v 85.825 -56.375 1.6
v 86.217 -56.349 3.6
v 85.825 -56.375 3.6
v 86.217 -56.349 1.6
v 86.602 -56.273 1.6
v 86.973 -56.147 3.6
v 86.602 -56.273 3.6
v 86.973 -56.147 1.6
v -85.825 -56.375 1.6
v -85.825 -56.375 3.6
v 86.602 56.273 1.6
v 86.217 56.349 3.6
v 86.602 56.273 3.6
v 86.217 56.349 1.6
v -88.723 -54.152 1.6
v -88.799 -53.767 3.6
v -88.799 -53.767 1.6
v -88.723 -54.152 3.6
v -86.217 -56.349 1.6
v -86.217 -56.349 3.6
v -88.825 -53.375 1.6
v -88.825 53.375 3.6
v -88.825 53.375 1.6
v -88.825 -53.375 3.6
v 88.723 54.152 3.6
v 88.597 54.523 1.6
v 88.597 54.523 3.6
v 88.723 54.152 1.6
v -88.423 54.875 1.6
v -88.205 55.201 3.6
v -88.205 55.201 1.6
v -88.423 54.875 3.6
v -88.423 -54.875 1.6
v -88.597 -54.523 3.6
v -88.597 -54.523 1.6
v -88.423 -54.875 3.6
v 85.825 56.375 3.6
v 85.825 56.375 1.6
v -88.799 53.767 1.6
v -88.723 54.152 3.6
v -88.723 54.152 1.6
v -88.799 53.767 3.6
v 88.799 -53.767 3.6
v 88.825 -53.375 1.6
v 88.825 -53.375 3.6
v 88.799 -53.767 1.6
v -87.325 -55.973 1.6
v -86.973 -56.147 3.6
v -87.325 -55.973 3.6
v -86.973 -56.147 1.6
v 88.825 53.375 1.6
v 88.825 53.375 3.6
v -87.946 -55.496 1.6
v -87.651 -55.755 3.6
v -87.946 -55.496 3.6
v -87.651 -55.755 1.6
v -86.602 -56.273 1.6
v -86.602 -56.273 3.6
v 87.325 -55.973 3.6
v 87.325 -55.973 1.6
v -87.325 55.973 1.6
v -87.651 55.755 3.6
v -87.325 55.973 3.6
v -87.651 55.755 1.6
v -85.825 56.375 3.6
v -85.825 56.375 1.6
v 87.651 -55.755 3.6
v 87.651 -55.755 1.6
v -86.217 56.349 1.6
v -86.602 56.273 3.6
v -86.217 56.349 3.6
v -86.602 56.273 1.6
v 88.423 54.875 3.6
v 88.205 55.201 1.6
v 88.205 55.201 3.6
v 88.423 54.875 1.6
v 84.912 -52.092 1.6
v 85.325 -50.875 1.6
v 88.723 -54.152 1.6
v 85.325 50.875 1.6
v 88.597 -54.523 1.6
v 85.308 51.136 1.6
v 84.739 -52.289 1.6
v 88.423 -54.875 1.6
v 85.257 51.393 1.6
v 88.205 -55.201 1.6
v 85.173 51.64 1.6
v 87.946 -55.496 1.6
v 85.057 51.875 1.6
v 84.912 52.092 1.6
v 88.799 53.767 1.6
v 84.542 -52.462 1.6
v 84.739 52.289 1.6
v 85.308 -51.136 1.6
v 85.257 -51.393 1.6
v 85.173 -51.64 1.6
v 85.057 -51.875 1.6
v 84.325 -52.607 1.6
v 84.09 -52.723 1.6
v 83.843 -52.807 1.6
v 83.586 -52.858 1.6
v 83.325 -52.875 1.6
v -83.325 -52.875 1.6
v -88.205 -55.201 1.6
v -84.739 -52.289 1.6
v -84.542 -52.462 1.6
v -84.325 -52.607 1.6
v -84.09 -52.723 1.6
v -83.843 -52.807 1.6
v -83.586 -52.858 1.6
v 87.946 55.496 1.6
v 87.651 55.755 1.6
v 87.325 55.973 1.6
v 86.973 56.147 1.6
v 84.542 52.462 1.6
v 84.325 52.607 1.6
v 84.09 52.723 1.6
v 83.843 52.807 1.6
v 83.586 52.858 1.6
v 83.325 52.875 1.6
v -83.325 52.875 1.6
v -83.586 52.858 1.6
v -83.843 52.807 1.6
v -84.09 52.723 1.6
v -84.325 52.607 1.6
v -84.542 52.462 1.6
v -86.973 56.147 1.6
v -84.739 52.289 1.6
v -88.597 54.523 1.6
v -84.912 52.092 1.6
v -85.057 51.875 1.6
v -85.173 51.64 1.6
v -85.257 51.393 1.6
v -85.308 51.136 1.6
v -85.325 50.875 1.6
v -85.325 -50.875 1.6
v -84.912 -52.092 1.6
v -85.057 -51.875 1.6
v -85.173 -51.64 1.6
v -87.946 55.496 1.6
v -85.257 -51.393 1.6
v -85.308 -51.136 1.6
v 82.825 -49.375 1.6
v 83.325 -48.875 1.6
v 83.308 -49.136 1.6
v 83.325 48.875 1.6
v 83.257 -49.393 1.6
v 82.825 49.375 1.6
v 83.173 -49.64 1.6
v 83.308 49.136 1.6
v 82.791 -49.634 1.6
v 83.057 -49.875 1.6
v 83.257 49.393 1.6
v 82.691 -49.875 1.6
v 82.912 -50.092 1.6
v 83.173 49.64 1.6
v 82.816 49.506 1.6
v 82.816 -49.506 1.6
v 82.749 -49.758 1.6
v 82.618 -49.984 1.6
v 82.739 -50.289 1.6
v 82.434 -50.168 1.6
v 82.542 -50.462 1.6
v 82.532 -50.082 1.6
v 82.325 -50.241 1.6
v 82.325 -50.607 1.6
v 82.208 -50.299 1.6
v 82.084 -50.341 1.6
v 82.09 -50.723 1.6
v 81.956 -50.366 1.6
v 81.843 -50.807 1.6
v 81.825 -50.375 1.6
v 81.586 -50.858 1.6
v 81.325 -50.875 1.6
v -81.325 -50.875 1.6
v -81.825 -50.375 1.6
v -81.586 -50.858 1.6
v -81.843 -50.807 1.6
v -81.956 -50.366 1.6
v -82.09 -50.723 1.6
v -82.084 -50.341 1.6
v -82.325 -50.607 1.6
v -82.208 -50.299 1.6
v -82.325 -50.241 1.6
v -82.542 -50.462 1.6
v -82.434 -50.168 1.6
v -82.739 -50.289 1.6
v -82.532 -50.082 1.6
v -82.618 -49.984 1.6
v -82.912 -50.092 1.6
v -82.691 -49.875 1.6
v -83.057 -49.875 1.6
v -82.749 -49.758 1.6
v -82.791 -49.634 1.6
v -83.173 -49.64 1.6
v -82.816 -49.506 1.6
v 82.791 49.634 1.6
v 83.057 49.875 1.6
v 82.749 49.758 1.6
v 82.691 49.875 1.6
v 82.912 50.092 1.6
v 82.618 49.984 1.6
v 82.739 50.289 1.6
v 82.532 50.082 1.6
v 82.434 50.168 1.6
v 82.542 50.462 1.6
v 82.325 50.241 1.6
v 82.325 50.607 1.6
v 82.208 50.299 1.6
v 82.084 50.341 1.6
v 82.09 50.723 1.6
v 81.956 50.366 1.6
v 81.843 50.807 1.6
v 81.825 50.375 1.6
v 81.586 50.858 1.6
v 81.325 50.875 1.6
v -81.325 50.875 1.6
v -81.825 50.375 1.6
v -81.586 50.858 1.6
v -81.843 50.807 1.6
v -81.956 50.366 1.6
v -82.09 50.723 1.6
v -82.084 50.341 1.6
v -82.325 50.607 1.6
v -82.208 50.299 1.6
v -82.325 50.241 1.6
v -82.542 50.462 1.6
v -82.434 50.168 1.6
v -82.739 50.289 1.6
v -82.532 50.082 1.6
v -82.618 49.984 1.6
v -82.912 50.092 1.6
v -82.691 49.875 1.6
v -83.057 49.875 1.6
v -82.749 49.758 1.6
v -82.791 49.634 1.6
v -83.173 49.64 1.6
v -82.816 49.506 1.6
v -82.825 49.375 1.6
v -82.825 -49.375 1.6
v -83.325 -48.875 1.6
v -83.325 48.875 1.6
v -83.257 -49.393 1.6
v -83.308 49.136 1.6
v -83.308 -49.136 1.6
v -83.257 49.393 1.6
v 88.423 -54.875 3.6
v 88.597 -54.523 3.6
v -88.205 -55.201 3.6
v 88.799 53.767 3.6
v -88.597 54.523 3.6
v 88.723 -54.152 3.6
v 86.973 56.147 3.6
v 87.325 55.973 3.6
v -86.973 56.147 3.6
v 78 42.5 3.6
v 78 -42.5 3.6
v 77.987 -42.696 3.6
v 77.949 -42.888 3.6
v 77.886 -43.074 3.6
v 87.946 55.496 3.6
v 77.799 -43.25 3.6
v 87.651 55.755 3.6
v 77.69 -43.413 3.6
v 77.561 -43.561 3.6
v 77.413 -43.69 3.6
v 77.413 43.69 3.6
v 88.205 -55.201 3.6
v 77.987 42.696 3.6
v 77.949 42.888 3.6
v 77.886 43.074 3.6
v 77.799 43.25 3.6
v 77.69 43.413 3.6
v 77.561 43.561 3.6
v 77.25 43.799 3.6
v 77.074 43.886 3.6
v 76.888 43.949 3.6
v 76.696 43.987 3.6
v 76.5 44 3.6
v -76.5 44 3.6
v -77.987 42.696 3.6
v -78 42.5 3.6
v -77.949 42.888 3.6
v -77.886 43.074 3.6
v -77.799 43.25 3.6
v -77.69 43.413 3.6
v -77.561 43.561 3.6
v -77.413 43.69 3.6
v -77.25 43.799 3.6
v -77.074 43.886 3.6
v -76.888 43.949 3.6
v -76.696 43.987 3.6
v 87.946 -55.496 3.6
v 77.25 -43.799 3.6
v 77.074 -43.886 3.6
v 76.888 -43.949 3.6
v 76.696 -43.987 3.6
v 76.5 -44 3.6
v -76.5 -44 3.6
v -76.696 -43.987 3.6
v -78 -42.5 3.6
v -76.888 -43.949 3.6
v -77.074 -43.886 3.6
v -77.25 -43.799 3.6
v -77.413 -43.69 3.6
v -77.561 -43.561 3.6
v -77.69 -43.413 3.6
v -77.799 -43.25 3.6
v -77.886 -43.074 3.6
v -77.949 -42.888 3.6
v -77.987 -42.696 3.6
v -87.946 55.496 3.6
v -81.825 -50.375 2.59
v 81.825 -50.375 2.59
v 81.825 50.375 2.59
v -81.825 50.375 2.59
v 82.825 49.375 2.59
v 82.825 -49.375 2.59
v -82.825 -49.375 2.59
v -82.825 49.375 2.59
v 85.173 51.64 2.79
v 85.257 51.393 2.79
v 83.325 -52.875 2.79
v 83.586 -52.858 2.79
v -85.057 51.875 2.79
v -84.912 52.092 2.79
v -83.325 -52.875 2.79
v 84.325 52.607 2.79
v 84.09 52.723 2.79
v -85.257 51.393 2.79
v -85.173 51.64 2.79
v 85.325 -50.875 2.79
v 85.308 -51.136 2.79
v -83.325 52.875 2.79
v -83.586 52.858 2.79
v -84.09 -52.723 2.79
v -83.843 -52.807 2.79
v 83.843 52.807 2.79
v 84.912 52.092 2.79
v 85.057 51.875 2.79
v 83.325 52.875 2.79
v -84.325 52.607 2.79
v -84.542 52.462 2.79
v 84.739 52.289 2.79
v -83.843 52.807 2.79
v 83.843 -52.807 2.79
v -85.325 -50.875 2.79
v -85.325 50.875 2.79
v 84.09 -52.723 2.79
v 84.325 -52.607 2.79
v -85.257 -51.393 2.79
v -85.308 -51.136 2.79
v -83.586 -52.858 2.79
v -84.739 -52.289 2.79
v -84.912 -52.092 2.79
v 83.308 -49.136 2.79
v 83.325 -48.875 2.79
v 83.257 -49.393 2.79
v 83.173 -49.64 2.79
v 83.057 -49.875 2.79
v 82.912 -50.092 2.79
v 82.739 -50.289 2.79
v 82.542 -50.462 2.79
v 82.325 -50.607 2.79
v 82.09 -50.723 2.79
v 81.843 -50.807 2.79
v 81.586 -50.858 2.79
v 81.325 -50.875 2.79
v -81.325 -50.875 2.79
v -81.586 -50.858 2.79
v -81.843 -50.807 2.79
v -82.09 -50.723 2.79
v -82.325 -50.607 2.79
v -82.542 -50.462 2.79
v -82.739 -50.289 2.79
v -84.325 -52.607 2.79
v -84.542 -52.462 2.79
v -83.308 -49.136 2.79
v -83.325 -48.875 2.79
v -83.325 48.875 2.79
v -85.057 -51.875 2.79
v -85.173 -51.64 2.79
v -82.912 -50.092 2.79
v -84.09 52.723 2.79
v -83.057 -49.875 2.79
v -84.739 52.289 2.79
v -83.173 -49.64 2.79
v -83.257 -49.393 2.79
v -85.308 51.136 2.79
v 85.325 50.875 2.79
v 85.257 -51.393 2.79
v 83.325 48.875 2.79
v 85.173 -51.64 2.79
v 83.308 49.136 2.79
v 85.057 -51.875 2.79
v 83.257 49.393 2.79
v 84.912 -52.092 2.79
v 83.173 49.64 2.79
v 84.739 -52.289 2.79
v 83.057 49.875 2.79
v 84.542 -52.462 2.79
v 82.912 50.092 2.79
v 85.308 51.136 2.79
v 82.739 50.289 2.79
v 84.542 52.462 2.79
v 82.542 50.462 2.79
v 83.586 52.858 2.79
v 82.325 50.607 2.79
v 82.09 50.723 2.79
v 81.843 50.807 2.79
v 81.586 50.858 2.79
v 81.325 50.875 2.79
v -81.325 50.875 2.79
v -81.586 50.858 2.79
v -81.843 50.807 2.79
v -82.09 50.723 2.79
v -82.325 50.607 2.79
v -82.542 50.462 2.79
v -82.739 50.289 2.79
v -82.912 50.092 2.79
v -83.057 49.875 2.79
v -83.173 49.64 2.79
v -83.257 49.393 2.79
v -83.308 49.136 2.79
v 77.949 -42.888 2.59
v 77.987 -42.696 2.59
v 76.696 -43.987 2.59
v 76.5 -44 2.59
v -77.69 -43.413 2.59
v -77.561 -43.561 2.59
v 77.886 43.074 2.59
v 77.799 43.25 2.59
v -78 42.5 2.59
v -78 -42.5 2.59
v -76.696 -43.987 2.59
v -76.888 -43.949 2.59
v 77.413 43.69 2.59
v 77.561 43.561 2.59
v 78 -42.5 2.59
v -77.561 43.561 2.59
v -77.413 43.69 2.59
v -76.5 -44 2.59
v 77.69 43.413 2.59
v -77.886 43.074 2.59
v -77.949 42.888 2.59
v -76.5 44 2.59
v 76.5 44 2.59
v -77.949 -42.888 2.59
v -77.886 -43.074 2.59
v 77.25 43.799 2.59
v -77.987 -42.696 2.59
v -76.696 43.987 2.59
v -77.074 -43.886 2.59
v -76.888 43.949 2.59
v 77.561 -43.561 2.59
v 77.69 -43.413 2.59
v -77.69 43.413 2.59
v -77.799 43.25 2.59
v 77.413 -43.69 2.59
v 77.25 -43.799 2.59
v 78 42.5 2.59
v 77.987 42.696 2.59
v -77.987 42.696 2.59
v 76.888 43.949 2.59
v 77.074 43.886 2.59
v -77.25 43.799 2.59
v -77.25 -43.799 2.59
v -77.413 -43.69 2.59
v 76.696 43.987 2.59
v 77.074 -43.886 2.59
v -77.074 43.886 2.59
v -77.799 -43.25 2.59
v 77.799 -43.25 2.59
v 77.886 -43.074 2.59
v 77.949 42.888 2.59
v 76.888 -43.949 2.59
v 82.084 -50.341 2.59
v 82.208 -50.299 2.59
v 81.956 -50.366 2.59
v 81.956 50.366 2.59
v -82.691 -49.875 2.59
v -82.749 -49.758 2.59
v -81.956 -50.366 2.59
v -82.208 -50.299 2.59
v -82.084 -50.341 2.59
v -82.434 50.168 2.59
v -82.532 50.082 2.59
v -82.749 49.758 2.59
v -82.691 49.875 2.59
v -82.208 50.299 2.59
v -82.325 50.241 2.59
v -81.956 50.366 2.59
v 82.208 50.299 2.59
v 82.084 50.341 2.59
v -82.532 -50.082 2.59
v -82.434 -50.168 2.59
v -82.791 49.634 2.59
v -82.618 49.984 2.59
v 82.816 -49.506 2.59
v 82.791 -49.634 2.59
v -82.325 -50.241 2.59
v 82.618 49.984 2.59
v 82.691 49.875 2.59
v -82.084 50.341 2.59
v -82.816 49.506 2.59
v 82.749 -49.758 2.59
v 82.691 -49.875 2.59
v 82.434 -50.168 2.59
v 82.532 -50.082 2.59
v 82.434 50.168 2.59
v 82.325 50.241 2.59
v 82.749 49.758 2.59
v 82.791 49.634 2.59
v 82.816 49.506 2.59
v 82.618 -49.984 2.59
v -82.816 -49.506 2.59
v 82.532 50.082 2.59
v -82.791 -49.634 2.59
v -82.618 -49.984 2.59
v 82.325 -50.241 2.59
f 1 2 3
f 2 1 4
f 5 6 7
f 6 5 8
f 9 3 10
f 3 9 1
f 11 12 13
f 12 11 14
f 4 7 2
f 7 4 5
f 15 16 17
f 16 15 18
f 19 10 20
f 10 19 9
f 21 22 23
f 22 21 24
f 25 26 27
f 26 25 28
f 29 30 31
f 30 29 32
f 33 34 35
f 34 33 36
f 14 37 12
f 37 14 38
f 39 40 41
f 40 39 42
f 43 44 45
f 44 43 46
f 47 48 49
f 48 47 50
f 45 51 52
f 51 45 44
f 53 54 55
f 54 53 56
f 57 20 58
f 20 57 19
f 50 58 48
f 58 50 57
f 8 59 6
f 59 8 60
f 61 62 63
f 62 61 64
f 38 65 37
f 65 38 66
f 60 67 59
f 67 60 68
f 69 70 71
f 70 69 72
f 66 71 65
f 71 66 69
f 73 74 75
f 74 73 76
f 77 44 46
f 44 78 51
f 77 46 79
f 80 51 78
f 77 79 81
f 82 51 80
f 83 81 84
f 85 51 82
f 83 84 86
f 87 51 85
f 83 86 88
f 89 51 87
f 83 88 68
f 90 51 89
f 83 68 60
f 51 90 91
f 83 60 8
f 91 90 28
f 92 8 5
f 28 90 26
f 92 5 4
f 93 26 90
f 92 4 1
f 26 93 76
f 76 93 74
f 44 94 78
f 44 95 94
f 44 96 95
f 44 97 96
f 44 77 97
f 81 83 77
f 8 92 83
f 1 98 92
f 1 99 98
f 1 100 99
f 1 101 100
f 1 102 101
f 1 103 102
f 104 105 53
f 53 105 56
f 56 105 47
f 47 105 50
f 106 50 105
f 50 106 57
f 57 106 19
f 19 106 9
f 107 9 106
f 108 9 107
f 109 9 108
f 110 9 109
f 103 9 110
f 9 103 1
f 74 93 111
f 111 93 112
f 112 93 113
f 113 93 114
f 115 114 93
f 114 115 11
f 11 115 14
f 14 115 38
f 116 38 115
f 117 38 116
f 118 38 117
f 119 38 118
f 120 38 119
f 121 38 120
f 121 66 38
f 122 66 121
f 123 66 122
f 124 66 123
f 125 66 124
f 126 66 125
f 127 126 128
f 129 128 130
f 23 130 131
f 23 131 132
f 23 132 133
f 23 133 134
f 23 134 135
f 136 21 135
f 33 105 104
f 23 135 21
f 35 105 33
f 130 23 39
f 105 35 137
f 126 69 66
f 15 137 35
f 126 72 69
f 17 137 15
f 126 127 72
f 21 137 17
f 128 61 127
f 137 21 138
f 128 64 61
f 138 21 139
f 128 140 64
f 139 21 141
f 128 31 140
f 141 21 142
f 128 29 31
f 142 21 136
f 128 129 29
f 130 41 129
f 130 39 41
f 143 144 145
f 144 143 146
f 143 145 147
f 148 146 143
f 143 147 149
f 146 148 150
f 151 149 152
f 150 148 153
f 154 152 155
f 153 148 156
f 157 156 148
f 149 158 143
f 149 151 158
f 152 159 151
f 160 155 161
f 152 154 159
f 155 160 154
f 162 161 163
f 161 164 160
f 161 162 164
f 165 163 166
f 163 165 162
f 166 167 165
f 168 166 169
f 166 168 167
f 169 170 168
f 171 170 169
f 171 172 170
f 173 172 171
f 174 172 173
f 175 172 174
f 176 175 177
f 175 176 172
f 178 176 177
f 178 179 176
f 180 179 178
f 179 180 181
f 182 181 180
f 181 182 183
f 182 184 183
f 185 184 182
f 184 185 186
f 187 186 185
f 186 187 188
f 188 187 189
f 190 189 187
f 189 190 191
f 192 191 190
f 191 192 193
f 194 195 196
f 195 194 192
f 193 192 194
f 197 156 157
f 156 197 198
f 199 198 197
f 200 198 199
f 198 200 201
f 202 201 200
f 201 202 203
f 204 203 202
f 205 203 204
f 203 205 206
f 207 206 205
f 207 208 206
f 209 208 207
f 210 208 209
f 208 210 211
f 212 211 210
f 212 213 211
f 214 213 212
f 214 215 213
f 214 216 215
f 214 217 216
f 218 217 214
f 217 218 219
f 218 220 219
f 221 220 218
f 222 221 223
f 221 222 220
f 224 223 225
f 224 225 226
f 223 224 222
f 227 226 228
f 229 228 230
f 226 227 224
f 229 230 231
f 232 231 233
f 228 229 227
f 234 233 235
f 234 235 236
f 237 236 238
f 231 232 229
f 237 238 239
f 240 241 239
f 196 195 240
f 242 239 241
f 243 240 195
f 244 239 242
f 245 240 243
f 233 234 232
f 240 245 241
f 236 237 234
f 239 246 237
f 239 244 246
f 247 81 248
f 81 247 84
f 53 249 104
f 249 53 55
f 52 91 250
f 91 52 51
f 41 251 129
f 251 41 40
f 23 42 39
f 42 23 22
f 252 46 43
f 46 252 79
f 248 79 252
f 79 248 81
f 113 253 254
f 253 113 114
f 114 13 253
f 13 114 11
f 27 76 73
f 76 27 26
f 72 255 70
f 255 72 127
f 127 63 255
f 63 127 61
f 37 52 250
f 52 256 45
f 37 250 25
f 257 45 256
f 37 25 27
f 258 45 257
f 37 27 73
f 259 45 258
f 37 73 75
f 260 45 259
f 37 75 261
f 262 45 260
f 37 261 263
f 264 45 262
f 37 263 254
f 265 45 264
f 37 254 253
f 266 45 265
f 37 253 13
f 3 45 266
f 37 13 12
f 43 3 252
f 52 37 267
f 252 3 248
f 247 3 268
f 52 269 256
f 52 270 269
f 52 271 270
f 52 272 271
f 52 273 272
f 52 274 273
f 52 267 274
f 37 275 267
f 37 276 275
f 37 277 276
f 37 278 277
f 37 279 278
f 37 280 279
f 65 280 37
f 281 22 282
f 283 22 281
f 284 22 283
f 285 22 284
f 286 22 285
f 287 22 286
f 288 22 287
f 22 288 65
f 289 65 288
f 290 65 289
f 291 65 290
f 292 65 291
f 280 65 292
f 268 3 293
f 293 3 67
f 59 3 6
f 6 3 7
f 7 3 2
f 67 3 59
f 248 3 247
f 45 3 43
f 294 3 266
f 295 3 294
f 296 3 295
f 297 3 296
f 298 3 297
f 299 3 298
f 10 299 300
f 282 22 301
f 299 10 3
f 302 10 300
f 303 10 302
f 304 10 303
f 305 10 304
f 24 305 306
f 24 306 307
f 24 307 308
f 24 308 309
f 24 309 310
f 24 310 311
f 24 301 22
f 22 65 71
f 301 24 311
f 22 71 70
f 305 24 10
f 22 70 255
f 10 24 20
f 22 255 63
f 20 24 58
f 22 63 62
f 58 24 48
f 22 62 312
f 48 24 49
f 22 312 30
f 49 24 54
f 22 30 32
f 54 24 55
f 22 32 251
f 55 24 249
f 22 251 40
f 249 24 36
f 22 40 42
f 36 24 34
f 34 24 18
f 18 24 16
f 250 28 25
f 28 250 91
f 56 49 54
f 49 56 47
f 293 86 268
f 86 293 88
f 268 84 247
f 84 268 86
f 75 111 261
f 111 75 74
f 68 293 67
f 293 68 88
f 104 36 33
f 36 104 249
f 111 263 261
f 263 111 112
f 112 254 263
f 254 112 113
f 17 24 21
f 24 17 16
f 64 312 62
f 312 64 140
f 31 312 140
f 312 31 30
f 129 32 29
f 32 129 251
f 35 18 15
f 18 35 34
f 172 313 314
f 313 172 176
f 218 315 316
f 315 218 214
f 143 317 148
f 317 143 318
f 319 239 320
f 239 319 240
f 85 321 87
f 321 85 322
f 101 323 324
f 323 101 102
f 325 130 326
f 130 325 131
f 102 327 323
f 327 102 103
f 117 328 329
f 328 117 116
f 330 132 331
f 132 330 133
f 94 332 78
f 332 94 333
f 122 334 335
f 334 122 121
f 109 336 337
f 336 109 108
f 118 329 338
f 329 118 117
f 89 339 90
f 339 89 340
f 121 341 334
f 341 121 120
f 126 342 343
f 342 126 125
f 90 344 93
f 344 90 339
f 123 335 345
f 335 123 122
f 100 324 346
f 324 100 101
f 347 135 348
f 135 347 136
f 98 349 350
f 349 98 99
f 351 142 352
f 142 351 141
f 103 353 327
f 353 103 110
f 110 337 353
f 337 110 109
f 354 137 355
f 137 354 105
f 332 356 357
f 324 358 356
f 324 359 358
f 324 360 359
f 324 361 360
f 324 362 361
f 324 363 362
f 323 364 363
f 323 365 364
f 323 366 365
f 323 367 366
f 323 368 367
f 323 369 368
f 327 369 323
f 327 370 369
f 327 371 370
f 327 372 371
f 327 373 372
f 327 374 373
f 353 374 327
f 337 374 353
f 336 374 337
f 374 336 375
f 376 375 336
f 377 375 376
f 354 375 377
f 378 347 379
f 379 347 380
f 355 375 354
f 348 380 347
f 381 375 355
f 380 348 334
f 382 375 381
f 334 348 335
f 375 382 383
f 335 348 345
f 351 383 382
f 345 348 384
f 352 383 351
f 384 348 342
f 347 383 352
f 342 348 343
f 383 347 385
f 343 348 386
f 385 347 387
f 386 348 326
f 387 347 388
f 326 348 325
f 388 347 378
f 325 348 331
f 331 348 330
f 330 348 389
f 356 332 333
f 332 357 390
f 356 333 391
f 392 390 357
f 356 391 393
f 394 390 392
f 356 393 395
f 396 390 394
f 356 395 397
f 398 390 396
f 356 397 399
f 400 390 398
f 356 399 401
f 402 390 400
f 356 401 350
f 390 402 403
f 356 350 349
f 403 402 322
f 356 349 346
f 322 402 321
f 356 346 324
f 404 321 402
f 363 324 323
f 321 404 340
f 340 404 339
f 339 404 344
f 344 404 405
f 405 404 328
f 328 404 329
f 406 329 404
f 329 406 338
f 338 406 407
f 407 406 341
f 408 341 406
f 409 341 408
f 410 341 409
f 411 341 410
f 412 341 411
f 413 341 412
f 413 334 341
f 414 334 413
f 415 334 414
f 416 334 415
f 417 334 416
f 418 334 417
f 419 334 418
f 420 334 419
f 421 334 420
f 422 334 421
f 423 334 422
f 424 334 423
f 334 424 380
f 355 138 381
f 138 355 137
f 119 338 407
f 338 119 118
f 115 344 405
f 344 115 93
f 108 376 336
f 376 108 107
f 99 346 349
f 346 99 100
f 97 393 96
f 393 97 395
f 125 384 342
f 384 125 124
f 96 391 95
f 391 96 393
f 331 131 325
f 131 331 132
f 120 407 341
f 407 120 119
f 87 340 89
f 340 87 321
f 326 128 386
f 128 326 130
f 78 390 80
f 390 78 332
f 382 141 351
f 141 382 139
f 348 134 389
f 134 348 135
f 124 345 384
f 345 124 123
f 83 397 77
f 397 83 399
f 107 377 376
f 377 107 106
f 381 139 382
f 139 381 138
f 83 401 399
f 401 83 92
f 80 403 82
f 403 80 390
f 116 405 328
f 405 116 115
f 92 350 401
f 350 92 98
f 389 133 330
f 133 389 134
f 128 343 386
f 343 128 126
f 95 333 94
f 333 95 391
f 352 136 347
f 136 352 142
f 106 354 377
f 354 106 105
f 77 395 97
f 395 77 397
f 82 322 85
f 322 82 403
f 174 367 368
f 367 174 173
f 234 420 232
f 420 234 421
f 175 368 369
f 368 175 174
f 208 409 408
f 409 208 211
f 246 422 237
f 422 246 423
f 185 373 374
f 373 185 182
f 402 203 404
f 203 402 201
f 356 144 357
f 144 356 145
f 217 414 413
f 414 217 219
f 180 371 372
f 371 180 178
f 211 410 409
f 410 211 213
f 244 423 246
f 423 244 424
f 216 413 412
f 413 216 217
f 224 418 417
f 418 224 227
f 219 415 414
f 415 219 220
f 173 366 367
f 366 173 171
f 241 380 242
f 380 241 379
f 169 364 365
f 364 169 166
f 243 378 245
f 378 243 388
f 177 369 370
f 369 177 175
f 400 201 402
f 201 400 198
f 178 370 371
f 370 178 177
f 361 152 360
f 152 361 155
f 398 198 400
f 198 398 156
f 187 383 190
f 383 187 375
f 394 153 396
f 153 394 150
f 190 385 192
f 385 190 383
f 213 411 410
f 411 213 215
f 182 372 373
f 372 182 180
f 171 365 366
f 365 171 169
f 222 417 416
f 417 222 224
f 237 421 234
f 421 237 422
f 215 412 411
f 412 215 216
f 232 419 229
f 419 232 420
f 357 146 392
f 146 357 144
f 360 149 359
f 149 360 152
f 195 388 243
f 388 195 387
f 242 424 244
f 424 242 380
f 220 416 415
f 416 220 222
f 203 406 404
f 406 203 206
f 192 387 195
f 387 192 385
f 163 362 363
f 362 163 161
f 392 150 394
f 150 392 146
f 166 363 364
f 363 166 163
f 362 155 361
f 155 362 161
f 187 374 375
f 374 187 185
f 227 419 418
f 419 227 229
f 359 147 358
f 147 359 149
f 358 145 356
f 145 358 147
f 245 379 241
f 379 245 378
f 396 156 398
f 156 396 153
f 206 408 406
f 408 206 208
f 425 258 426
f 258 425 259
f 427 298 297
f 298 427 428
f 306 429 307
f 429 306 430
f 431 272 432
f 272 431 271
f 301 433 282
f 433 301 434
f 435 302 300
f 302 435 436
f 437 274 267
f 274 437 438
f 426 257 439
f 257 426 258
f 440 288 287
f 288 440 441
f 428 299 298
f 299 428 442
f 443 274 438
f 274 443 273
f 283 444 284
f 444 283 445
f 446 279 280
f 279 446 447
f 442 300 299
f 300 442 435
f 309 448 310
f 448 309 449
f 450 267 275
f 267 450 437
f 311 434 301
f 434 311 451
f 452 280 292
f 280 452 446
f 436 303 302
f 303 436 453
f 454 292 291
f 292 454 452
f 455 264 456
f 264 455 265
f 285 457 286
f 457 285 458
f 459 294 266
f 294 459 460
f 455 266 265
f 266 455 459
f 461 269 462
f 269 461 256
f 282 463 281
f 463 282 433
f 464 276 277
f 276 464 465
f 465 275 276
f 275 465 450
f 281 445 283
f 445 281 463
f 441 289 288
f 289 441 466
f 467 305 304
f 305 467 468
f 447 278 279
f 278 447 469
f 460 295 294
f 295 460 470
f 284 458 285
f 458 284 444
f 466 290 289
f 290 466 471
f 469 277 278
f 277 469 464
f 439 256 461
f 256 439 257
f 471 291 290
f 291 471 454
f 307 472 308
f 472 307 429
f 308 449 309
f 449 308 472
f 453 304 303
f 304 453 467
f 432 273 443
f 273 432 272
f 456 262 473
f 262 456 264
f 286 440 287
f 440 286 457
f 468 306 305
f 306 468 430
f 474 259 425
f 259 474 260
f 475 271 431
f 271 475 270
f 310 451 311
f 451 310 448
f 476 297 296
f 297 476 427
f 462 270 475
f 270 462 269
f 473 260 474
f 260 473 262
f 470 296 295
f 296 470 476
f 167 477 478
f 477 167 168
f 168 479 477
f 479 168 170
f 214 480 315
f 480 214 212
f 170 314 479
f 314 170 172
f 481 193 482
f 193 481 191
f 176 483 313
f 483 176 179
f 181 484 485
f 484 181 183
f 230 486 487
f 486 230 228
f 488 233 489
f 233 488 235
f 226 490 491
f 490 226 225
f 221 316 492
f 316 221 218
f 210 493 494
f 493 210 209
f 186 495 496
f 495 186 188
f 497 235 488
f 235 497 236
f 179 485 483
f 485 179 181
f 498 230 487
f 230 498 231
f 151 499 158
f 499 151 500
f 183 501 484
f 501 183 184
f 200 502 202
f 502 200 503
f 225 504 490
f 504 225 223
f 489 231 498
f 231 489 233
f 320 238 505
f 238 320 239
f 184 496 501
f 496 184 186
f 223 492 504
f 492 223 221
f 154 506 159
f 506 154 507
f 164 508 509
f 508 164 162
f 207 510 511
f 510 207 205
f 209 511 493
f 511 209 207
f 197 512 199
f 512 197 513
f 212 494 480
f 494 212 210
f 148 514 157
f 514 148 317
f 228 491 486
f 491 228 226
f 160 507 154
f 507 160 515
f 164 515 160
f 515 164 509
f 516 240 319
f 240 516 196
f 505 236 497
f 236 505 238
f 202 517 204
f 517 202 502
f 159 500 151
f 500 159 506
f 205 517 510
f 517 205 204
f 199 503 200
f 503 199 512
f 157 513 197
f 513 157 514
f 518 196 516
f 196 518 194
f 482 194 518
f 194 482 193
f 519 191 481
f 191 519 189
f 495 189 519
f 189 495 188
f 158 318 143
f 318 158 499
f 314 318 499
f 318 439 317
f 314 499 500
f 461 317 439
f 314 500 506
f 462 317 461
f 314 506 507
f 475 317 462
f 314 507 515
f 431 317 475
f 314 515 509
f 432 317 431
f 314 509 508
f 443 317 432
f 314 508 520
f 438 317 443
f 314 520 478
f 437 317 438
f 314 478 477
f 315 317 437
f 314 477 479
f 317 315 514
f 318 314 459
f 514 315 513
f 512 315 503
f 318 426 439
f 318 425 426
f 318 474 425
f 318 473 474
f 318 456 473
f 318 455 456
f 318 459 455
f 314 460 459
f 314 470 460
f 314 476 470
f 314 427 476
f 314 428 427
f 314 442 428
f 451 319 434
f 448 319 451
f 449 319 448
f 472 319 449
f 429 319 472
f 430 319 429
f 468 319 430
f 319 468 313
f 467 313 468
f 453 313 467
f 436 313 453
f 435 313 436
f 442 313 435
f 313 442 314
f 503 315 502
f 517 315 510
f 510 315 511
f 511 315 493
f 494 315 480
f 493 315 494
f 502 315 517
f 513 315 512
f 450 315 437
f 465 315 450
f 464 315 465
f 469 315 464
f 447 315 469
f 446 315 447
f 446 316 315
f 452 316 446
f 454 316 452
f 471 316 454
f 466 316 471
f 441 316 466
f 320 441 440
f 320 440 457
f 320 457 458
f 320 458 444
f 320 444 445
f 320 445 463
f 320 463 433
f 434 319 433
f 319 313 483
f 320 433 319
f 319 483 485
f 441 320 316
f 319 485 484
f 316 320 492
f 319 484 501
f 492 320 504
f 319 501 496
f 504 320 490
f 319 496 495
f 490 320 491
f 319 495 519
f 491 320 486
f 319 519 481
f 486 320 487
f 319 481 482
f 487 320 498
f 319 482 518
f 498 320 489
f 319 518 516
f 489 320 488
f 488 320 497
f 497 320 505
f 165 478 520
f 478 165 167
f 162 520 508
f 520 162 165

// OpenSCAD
// CrowPanel ESP32 7" (DIS08070H) bezel for the field slate (ADR-119 §7).
// Mounts in a cut-out in the aluminium clipboard lid; the panel screws in from behind on
// its 4 x Ø3.2 holes. Dimensions from Elecrow's 7.0inch_HMI_Outline_Dimensions.pdf.
// All values are parameters: measure your lid and panel and adjust.

/* [Panel (from the Elecrow outline)] */
panel_w        = 181;     // board outline width, mm
panel_h        = 104;     // board outline height
hole_dx        = 174;     // mounting hole spacing, x
hole_dy        = 97;      // mounting hole spacing, y
hole_d         = 3.2;     // mounting hole diameter
glass_w        = 164.85;  // cover glass width
glass_h        = 99.95;   // cover glass height
view_w         = 156;     // visible window (active area 154.2 x 85.9 plus margin)
view_h         = 88;

/* [Lid and fit] */
lid_t          = 1.6;     // aluminium lid thickness at the cut-out (measure)
clearance      = 0.4;     // fit clearance around glass and board
lip_w          = 6;       // bezel lip overlapping the lid, each side
face_t         = 2.0;     // bezel face thickness above the lid
gasket_w       = 2.0;     // gasket groove width (cord or foam strip)
gasket_d       = 1.2;     // gasket groove depth
boss_h         = 6;       // standoff height behind the lid (panel stack depth, measure)
boss_d         = 7;
screw_d        = 2.6;     // M3 self-tap pilot into the boss

$fn = 48;

cut_w = glass_w + 2*clearance;   // lid cut-out the bezel neck passes through
cut_h = glass_h + 2*clearance;

module rounded_rect(w, h, r, t) {
    linear_extrude(t) offset(r) offset(-r) square([w, h], center = true);
}

module bezel() {
    difference() {
        union() {
            // face: sits on the outside of the lid
            translate([0, 0, lid_t]) rounded_rect(cut_w + 2*lip_w, cut_h + 2*lip_w, 3, face_t);
            // neck: passes through the lid cut-out
            rounded_rect(cut_w, cut_h, 1.5, lid_t);
        }
        // viewing window
        translate([0, 0, -1]) rounded_rect(view_w, view_h, 1.5, lid_t + face_t + 2);
        // pocket for the cover glass, so the glass sits flush under the face
        translate([0, 0, -0.01]) rounded_rect(glass_w + 2*clearance, glass_h + 2*clearance, 1, lid_t + face_t - 1.0);
        // gasket groove on the underside of the face, around the neck
        translate([0, 0, lid_t - 0.01])
            difference() {
                rounded_rect(cut_w + 2*gasket_w + 1, cut_h + 2*gasket_w + 1, 2, gasket_d);
                translate([0, 0, -0.1]) rounded_rect(cut_w + 1, cut_h + 1, 2, gasket_d + 0.2);
            }
    }
}

// Clamp frame behind the lid: the panel screws to its bosses, and the frame clamps the
// bezel and gasket to the lid with four screws through the lid (or bonded).
module clamp_frame() {
    difference() {
        union() {
            rounded_rect(panel_w + 8, panel_h + 8, 3, 2);
            for (sx = [-1, 1], sy = [-1, 1])
                translate([sx*hole_dx/2, sy*hole_dy/2, 0]) cylinder(d = boss_d, h = boss_h);
        }
        translate([0, 0, -1]) rounded_rect(cut_w, cut_h, 1.5, 4);
        for (sx = [-1, 1], sy = [-1, 1])
            translate([sx*hole_dx/2, sy*hole_dy/2, -1]) cylinder(d = screw_d, h = boss_h + 2);
    }
}

part = "bezel"; // [bezel, clamp_frame, both]
if (part == "bezel" || part == "both") bezel();
if (part == "clamp_frame") clamp_frame();
if (part == "both") translate([0, panel_h + 20, 0]) clamp_frame();
